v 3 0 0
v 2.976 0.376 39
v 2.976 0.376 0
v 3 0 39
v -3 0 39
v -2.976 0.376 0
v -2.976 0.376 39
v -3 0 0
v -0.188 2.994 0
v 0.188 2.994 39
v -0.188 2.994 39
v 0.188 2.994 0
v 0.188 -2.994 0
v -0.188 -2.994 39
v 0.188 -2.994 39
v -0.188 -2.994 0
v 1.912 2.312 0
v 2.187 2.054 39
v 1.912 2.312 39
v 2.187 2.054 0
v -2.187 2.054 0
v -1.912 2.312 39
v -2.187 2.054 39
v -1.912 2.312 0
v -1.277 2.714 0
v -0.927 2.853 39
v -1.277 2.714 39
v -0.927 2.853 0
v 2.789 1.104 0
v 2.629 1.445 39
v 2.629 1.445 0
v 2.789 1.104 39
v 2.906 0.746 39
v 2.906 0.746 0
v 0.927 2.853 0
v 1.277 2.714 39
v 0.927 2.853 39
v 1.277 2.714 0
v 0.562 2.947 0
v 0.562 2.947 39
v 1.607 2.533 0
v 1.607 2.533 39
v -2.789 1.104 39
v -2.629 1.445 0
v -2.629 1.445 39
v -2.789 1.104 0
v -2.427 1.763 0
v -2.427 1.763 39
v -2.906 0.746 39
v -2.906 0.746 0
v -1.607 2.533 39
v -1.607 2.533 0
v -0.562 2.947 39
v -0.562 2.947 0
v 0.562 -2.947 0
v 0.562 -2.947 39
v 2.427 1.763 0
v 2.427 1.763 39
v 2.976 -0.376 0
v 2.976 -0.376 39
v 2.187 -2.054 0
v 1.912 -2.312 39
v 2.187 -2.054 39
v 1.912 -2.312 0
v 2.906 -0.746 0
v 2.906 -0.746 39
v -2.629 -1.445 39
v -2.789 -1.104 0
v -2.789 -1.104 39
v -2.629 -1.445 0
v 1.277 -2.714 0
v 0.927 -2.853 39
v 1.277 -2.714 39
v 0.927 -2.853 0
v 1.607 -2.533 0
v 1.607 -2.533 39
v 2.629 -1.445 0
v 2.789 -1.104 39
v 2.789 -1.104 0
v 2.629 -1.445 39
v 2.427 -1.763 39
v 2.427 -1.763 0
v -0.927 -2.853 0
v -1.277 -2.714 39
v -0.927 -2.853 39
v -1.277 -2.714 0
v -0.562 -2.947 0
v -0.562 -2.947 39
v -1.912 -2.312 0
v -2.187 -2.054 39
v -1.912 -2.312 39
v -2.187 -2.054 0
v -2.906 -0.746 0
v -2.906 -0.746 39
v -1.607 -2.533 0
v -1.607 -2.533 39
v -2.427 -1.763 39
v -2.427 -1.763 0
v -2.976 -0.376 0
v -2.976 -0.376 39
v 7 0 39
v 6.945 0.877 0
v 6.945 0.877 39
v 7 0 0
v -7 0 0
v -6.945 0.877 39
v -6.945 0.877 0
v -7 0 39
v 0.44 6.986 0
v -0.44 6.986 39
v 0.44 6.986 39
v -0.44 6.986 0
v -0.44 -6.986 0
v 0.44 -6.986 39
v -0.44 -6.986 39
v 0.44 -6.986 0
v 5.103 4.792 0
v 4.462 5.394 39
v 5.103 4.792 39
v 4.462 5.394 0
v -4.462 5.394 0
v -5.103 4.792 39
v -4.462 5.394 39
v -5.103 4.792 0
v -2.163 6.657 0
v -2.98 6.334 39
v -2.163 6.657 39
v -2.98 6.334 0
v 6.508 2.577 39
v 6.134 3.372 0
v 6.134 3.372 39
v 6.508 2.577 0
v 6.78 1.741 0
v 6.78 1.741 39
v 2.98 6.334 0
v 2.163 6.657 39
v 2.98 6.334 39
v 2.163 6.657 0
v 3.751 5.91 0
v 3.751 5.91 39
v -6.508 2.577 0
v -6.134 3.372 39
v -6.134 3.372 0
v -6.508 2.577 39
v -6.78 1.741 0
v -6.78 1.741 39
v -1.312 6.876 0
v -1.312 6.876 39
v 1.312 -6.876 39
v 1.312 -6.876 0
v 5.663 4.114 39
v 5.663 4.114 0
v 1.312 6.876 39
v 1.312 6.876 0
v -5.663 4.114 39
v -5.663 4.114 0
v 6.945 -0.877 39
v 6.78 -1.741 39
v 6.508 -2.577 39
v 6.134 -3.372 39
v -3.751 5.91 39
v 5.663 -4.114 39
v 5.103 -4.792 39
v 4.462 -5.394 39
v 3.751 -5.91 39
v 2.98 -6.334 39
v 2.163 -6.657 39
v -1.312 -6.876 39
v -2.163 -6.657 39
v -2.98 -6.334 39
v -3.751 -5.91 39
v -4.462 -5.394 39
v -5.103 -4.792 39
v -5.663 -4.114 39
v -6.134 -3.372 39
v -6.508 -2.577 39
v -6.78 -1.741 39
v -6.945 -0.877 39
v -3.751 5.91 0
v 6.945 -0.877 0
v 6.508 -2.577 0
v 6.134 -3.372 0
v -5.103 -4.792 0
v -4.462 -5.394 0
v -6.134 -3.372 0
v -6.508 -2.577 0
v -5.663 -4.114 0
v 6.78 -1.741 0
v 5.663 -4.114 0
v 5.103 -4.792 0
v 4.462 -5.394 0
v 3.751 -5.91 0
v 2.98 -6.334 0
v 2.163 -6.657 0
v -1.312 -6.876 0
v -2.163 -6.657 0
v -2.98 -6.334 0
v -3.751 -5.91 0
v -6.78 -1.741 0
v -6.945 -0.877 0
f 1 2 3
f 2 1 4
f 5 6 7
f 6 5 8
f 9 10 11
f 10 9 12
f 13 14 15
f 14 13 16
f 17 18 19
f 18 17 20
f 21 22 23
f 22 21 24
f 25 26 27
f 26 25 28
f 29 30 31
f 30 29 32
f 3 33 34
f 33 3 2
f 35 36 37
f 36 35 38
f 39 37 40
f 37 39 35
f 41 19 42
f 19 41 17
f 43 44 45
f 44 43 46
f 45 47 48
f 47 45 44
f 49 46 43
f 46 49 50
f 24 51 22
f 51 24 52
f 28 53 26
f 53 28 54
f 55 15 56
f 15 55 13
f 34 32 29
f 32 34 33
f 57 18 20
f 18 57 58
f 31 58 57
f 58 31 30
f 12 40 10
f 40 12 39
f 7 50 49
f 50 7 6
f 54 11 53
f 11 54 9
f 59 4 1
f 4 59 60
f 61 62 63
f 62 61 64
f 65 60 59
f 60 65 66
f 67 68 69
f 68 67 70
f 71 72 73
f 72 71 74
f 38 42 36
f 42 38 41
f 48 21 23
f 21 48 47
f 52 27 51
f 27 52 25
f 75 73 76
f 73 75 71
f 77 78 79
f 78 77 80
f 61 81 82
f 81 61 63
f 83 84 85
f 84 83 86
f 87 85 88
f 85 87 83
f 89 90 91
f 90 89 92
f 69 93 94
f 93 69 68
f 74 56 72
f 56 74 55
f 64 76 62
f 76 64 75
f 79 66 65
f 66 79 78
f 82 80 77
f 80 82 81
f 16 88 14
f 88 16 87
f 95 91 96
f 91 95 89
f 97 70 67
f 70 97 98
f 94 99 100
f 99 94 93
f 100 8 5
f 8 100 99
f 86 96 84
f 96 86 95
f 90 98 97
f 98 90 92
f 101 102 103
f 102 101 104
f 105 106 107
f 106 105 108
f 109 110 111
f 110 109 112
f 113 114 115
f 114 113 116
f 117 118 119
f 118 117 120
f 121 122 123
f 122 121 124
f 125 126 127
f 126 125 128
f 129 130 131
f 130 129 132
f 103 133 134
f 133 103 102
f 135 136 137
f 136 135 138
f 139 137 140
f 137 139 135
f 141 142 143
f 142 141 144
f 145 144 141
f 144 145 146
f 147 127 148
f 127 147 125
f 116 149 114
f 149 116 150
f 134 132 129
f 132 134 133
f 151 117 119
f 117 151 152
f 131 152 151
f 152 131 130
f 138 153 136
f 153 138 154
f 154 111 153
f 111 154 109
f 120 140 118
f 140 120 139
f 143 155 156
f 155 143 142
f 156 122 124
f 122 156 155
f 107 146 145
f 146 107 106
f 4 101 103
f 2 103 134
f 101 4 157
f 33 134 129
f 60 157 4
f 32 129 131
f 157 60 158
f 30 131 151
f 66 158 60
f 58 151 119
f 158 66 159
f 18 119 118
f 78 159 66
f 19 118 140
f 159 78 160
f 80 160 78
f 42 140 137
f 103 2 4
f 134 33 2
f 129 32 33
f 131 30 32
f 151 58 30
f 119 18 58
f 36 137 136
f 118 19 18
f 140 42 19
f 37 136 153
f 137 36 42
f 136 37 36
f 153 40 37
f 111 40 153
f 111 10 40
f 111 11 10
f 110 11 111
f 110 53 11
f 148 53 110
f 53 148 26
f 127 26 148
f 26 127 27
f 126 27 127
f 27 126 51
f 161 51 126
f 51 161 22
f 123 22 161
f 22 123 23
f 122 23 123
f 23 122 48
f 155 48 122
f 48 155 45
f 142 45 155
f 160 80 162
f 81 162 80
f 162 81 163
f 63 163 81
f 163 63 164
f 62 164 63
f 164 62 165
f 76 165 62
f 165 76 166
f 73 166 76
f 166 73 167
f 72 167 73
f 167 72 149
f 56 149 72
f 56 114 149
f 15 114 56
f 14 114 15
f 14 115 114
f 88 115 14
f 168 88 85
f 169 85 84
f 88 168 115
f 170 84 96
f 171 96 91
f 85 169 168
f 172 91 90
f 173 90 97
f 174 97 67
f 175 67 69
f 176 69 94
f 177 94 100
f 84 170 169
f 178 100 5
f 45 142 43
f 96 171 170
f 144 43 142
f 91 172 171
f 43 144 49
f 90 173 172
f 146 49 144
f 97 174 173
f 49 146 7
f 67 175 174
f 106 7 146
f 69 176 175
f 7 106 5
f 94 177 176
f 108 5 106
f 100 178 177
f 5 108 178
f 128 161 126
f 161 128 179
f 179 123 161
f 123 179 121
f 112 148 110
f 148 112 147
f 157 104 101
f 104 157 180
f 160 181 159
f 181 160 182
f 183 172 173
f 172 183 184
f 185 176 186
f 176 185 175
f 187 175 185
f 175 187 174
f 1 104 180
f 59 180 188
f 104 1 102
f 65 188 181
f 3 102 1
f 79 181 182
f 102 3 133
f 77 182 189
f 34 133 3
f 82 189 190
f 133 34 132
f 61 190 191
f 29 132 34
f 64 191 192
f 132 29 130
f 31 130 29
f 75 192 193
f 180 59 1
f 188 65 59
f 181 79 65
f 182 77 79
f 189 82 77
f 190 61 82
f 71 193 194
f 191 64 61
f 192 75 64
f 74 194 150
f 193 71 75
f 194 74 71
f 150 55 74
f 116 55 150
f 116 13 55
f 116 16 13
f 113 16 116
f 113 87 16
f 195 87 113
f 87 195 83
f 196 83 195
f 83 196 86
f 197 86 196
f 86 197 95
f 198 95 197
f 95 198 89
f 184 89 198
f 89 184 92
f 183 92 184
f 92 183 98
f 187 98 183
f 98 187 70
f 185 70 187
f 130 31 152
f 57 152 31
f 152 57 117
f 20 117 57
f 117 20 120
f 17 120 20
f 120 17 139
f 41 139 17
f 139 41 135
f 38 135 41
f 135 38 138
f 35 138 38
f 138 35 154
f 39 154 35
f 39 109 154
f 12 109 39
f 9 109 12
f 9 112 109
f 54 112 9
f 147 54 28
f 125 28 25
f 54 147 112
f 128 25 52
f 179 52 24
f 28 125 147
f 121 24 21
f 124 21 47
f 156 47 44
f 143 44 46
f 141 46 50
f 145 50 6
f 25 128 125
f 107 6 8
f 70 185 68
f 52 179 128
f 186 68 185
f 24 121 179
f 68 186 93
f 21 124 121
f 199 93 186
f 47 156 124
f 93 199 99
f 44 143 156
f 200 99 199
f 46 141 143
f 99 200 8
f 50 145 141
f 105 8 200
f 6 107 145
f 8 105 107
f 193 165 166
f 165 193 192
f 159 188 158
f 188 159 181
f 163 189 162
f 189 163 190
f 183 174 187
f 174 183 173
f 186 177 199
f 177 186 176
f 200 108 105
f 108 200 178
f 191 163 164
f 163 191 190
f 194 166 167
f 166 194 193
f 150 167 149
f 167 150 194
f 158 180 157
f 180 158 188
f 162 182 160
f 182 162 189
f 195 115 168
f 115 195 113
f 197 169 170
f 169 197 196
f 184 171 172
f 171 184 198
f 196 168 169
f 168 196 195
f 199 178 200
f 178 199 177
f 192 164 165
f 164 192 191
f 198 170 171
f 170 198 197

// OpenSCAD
$fn = 50;


difference() {
	union() {
		*color(alpha = 1.0000000000, c = "gray") {
			translate(v = [0, 7, 0]) {
				linear_extrude(height = 1) {
					text(font = "Arial:style=Bold", halign = "center", size = 4.5000000000, text = "COMMENT plate main", valign = "center");
				}
			}
		}
		cylinder(h = 39, r = 7.0000000000);
	}
	union() {
		*color(alpha = 1.0000000000, c = "gray") {
			translate(v = [0, 7, 0]) {
				linear_extrude(height = 1) {
					text(font = "Arial:style=Bold", halign = "center", size = 4.5000000000, text = "COMMENT holes main", valign = "center");
				}
			}
		}
		translate(v = [0, 0, -100]) {
			cylinder(h = 200, r = 3.0000000000);
		}
		translate(v = [0, 0, -100]) {
			cylinder(h = 200, r = 1.5000000000);
		}
	}
}
